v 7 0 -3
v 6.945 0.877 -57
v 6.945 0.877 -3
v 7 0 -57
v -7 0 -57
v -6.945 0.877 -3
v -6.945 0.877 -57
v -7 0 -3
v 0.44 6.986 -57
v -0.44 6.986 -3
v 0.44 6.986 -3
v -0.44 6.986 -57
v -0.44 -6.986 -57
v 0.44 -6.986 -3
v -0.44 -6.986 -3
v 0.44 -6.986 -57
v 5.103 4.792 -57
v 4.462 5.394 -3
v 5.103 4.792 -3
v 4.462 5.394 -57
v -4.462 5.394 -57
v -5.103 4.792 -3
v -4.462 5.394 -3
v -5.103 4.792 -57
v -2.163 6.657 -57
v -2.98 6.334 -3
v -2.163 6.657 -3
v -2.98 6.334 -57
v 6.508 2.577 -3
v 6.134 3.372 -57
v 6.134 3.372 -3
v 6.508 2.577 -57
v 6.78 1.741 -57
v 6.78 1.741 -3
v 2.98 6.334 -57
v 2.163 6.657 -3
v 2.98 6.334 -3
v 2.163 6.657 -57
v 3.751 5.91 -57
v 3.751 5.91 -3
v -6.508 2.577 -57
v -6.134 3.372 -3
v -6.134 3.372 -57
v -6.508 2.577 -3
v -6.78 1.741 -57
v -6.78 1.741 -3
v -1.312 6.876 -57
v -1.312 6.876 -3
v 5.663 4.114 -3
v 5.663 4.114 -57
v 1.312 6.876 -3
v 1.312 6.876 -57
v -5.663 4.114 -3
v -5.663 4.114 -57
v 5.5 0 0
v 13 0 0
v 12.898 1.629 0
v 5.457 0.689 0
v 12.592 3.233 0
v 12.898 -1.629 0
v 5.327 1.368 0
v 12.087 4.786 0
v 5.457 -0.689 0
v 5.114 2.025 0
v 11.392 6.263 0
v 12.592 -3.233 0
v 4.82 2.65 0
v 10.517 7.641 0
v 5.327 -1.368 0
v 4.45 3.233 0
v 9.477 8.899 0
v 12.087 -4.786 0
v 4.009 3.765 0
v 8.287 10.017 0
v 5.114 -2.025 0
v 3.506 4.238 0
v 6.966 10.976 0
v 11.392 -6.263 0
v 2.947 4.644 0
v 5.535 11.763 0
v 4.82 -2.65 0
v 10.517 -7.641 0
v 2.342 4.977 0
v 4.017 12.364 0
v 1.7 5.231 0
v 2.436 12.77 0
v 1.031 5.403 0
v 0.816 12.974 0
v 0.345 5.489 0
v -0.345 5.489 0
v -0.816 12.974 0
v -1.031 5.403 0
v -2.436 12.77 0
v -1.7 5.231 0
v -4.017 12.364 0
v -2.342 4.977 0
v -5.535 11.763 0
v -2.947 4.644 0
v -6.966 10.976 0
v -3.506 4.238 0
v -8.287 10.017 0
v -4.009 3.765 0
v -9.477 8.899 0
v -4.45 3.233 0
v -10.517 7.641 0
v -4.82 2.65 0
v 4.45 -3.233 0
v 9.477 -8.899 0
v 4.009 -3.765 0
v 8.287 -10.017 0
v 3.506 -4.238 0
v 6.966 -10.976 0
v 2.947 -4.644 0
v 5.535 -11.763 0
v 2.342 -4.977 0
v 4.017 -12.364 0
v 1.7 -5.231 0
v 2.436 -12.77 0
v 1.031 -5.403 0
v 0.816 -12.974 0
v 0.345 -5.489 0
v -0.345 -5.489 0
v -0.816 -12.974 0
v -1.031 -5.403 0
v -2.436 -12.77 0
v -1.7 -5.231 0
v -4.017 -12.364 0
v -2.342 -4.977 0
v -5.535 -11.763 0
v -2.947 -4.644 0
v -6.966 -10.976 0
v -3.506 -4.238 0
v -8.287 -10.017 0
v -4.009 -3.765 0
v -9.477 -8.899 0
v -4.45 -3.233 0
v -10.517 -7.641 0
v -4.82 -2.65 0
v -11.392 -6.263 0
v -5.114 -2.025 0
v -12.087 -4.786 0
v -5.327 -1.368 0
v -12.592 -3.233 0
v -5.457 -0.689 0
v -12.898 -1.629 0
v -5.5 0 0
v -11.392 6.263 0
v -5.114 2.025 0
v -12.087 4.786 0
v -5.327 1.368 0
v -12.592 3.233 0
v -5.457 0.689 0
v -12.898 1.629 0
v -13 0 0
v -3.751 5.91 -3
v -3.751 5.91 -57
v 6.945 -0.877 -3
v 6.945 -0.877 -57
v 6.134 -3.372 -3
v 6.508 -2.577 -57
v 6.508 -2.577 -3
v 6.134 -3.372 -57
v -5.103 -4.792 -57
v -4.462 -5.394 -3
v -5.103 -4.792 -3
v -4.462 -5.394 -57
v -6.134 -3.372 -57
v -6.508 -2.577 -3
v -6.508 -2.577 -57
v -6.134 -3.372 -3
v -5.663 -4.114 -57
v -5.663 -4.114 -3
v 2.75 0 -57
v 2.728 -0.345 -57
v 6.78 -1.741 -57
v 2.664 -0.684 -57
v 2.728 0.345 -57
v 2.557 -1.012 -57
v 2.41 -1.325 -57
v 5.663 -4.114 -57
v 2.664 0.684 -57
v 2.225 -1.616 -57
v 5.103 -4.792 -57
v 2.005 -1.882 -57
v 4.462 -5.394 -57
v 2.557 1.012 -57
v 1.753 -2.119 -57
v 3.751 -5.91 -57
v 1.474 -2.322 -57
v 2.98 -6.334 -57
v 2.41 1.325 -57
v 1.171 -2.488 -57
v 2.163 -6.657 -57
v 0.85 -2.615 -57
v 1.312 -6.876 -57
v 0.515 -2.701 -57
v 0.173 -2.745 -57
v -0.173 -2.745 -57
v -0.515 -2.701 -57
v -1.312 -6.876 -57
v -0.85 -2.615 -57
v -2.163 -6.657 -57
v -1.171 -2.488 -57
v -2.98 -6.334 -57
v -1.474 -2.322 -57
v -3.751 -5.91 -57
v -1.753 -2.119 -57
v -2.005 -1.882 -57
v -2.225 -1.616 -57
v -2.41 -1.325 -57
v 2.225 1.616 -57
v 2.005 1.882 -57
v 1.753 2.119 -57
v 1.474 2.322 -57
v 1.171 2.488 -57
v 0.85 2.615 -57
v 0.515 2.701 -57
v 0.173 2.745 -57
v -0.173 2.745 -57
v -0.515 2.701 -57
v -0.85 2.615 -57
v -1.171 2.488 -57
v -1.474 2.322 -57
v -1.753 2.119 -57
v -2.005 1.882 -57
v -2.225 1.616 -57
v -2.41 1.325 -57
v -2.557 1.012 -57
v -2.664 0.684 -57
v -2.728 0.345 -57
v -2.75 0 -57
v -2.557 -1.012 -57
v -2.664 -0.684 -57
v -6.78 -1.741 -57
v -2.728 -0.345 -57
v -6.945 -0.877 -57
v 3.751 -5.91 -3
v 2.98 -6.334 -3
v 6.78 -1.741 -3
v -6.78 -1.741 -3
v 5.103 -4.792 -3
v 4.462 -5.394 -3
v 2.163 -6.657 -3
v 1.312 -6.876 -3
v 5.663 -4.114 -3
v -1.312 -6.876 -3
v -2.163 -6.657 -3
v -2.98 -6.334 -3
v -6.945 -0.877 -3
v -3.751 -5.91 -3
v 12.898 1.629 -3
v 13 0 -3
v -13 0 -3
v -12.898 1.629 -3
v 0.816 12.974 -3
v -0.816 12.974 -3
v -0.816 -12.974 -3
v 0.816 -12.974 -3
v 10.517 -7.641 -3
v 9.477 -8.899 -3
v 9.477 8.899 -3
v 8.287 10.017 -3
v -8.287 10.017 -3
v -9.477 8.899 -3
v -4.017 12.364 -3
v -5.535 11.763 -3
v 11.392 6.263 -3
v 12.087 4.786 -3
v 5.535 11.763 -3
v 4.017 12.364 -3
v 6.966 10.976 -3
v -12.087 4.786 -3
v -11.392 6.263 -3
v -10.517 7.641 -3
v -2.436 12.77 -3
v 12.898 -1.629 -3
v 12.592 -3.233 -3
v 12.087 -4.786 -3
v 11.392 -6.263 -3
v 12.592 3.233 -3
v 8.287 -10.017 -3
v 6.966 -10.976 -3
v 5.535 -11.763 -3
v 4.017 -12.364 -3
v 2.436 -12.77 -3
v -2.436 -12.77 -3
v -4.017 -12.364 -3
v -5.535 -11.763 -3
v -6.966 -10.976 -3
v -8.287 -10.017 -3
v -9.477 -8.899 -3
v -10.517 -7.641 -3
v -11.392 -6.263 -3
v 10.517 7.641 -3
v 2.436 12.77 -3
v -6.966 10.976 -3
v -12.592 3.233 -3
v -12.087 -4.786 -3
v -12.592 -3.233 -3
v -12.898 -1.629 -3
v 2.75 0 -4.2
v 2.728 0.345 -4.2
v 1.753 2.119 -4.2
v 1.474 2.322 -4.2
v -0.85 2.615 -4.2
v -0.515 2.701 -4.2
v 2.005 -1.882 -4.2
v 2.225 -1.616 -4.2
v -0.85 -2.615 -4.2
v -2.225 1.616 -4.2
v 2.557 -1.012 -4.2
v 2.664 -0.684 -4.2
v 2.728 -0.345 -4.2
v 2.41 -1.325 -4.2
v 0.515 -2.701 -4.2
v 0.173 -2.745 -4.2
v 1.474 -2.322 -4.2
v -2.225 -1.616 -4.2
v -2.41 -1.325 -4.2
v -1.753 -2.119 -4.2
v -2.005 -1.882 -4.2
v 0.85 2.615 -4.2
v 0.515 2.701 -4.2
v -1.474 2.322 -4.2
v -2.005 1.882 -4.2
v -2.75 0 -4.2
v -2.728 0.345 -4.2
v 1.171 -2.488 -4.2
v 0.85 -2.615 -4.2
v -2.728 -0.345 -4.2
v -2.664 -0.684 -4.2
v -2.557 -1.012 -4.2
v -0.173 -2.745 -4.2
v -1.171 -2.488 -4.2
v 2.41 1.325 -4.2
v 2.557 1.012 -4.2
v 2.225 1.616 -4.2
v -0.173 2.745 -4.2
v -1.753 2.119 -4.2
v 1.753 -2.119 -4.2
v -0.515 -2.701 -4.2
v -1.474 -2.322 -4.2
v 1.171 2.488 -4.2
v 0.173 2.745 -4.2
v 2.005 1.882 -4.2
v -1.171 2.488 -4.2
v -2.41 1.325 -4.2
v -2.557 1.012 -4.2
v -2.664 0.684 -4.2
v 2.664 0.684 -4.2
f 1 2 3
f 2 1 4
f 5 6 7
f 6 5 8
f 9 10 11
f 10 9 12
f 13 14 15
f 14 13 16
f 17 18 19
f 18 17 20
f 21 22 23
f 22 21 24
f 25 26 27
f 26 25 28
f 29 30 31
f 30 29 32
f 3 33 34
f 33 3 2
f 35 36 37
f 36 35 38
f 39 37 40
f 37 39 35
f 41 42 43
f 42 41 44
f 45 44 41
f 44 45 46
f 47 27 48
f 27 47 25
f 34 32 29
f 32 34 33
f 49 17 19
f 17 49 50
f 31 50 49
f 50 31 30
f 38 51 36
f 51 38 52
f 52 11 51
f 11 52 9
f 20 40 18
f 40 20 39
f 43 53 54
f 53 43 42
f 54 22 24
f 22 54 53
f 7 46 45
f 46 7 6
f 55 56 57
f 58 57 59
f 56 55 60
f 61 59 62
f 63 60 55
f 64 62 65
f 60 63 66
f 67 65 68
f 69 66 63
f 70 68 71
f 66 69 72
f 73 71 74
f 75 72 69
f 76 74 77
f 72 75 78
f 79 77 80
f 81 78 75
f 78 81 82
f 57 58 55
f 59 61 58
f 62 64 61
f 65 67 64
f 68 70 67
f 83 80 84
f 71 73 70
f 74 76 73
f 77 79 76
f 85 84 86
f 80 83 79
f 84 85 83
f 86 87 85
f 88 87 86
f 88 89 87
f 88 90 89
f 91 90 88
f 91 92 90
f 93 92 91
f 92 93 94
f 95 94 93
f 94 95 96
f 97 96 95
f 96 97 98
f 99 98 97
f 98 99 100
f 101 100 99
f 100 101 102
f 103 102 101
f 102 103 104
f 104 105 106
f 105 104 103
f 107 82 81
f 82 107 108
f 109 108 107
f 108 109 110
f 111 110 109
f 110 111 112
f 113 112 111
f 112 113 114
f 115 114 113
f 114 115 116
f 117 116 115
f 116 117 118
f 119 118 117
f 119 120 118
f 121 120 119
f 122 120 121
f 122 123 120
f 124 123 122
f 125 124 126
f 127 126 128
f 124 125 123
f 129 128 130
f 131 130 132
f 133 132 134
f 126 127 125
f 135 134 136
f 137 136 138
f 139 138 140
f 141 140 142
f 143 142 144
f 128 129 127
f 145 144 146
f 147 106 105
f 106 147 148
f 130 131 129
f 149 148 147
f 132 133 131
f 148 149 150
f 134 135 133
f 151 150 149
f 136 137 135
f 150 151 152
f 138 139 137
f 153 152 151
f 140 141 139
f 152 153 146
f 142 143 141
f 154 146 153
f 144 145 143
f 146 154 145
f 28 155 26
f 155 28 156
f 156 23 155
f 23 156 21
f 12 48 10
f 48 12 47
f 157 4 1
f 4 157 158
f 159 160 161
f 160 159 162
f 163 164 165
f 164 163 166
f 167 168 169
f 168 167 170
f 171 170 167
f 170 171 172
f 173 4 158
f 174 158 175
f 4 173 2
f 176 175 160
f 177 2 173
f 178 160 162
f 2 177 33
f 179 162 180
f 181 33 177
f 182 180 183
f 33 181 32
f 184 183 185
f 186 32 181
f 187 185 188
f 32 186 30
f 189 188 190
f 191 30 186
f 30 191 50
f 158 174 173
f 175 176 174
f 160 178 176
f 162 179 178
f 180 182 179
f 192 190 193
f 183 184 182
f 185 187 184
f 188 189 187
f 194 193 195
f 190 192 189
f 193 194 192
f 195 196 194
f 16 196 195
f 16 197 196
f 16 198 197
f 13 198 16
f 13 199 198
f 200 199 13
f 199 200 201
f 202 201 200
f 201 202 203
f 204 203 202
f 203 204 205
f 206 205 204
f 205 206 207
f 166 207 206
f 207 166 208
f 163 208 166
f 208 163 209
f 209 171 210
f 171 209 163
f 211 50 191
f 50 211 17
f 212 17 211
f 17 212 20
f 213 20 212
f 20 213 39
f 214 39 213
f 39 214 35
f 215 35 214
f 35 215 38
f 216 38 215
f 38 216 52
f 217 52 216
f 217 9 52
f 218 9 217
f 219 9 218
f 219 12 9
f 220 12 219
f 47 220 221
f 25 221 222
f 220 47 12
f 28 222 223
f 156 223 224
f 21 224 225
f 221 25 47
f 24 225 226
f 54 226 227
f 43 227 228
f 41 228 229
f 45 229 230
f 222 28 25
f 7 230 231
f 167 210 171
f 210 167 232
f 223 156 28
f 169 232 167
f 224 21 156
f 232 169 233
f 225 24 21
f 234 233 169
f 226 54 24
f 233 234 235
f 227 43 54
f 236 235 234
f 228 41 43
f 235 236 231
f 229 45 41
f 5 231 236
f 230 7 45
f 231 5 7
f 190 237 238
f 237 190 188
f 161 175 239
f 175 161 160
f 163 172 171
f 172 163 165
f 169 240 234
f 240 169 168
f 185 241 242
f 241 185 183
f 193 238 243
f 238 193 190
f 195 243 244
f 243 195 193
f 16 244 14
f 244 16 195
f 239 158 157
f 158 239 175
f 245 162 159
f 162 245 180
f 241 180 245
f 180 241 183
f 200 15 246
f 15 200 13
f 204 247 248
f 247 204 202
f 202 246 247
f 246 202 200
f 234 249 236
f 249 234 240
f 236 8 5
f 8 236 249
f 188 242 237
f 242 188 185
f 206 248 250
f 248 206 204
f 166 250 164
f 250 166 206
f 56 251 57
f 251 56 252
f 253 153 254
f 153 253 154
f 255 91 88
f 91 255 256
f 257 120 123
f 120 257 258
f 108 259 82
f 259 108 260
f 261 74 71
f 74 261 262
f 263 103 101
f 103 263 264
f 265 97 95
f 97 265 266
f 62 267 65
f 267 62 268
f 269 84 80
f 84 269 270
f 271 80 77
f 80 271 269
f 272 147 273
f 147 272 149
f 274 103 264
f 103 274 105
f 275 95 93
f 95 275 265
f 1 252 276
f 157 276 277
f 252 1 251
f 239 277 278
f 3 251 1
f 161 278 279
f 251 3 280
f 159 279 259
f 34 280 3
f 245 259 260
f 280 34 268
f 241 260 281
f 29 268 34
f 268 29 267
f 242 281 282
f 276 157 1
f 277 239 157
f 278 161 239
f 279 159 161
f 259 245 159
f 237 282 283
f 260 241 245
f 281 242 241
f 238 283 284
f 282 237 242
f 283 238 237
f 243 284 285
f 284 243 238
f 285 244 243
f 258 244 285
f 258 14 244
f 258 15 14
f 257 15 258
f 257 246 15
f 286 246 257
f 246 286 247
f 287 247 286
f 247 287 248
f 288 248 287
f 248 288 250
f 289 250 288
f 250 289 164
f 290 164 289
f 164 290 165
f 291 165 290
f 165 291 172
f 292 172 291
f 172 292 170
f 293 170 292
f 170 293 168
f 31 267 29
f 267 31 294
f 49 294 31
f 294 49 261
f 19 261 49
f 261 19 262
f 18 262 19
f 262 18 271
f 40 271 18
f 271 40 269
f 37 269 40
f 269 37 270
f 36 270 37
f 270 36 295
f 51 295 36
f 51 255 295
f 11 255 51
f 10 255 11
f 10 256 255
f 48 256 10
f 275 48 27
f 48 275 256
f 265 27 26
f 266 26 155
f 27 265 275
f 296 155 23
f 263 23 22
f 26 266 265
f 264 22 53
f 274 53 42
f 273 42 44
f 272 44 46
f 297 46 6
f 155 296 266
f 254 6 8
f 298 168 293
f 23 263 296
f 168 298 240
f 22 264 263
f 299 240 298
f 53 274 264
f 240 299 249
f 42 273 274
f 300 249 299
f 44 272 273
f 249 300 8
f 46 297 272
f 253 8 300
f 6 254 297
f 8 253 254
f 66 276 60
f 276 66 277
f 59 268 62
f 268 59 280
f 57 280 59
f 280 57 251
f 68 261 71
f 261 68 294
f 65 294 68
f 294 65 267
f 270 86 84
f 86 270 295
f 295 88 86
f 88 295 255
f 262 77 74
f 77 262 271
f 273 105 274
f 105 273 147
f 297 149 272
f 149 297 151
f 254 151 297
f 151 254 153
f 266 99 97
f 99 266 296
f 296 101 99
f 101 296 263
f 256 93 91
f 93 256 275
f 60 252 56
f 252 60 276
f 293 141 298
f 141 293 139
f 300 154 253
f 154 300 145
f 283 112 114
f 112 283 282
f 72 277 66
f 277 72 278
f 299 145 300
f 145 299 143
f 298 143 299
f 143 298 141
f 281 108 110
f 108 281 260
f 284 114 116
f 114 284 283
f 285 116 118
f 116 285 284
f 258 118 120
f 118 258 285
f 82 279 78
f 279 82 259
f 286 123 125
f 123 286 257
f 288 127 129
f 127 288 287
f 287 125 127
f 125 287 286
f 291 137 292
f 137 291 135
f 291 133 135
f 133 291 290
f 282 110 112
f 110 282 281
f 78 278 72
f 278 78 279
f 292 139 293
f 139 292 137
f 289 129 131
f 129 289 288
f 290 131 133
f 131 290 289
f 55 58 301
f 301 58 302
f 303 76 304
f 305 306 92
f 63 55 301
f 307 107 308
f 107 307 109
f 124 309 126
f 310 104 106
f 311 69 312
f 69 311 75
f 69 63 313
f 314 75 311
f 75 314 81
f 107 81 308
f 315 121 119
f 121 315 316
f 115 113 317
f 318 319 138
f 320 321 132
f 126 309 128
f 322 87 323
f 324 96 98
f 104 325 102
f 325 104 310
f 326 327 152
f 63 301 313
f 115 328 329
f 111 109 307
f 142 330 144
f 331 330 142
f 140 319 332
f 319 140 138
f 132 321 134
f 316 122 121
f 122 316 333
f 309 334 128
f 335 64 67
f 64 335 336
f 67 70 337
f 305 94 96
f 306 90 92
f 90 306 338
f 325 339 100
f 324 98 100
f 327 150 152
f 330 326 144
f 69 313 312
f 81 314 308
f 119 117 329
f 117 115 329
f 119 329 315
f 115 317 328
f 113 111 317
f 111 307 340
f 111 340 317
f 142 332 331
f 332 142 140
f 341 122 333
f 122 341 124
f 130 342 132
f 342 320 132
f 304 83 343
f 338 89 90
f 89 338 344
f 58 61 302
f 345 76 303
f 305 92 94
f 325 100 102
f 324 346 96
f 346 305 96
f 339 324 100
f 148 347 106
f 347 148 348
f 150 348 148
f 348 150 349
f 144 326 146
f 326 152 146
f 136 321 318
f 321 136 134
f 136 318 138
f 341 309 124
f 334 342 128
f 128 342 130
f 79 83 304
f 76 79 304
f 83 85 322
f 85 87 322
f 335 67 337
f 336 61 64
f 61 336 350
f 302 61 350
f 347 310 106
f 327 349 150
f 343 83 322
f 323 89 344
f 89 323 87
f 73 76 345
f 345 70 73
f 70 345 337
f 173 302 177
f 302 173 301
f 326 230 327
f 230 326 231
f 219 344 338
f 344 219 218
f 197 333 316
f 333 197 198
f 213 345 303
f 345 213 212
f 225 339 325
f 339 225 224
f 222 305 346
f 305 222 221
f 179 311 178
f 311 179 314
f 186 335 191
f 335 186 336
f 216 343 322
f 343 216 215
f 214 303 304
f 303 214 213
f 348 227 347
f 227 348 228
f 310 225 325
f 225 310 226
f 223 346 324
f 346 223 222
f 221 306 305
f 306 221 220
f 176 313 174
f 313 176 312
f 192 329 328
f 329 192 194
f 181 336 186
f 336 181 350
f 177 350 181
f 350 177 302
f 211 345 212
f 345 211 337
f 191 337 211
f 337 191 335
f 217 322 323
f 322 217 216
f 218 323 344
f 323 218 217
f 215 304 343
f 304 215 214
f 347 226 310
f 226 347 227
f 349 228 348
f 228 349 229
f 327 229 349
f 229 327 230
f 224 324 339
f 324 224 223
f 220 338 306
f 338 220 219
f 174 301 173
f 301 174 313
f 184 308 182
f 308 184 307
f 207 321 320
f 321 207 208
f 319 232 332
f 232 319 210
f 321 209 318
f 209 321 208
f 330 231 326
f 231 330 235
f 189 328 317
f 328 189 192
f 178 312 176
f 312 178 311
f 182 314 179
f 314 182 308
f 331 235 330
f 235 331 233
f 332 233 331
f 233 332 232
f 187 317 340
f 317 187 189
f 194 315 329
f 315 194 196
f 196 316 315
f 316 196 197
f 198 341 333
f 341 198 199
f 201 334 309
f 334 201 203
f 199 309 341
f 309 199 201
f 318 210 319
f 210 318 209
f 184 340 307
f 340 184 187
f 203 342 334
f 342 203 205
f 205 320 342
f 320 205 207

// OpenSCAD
$fn = 50;


difference() {
	union() {
		translate(v = [0, 0, -57.0000000000]) {
			cylinder(h = 57, r = 7.0000000000);
		}
		translate(v = [0, 0, -3.0000000000]) {
			cylinder(h = 3, r = 13.0000000000);
		}
	}
	union() {
		translate(v = [0, 0, 0]) {
			rotate(a = [0, 0, 0]) {
				difference() {
					union() {
						#translate(v = [0, 0, -57.0000000000]) {
							cylinder(h = 57, r = 2.2500000000);
						}
						#translate(v = [0, 0, -4.2000000000]) {
							cylinder(h = 4.2000000000, r1 = 2.7500000000, r2 = 5.5000000000);
						}
						#translate(v = [0, 0, -57.0000000000]) {
							cylinder(h = 57, r = 2.7500000000);
						}
						#translate(v = [0, 0, -57.0000000000]) {
							cylinder(h = 57, r = 2.2500000000);
						}
					}
					union();
				}
			}
		}
	}
}
